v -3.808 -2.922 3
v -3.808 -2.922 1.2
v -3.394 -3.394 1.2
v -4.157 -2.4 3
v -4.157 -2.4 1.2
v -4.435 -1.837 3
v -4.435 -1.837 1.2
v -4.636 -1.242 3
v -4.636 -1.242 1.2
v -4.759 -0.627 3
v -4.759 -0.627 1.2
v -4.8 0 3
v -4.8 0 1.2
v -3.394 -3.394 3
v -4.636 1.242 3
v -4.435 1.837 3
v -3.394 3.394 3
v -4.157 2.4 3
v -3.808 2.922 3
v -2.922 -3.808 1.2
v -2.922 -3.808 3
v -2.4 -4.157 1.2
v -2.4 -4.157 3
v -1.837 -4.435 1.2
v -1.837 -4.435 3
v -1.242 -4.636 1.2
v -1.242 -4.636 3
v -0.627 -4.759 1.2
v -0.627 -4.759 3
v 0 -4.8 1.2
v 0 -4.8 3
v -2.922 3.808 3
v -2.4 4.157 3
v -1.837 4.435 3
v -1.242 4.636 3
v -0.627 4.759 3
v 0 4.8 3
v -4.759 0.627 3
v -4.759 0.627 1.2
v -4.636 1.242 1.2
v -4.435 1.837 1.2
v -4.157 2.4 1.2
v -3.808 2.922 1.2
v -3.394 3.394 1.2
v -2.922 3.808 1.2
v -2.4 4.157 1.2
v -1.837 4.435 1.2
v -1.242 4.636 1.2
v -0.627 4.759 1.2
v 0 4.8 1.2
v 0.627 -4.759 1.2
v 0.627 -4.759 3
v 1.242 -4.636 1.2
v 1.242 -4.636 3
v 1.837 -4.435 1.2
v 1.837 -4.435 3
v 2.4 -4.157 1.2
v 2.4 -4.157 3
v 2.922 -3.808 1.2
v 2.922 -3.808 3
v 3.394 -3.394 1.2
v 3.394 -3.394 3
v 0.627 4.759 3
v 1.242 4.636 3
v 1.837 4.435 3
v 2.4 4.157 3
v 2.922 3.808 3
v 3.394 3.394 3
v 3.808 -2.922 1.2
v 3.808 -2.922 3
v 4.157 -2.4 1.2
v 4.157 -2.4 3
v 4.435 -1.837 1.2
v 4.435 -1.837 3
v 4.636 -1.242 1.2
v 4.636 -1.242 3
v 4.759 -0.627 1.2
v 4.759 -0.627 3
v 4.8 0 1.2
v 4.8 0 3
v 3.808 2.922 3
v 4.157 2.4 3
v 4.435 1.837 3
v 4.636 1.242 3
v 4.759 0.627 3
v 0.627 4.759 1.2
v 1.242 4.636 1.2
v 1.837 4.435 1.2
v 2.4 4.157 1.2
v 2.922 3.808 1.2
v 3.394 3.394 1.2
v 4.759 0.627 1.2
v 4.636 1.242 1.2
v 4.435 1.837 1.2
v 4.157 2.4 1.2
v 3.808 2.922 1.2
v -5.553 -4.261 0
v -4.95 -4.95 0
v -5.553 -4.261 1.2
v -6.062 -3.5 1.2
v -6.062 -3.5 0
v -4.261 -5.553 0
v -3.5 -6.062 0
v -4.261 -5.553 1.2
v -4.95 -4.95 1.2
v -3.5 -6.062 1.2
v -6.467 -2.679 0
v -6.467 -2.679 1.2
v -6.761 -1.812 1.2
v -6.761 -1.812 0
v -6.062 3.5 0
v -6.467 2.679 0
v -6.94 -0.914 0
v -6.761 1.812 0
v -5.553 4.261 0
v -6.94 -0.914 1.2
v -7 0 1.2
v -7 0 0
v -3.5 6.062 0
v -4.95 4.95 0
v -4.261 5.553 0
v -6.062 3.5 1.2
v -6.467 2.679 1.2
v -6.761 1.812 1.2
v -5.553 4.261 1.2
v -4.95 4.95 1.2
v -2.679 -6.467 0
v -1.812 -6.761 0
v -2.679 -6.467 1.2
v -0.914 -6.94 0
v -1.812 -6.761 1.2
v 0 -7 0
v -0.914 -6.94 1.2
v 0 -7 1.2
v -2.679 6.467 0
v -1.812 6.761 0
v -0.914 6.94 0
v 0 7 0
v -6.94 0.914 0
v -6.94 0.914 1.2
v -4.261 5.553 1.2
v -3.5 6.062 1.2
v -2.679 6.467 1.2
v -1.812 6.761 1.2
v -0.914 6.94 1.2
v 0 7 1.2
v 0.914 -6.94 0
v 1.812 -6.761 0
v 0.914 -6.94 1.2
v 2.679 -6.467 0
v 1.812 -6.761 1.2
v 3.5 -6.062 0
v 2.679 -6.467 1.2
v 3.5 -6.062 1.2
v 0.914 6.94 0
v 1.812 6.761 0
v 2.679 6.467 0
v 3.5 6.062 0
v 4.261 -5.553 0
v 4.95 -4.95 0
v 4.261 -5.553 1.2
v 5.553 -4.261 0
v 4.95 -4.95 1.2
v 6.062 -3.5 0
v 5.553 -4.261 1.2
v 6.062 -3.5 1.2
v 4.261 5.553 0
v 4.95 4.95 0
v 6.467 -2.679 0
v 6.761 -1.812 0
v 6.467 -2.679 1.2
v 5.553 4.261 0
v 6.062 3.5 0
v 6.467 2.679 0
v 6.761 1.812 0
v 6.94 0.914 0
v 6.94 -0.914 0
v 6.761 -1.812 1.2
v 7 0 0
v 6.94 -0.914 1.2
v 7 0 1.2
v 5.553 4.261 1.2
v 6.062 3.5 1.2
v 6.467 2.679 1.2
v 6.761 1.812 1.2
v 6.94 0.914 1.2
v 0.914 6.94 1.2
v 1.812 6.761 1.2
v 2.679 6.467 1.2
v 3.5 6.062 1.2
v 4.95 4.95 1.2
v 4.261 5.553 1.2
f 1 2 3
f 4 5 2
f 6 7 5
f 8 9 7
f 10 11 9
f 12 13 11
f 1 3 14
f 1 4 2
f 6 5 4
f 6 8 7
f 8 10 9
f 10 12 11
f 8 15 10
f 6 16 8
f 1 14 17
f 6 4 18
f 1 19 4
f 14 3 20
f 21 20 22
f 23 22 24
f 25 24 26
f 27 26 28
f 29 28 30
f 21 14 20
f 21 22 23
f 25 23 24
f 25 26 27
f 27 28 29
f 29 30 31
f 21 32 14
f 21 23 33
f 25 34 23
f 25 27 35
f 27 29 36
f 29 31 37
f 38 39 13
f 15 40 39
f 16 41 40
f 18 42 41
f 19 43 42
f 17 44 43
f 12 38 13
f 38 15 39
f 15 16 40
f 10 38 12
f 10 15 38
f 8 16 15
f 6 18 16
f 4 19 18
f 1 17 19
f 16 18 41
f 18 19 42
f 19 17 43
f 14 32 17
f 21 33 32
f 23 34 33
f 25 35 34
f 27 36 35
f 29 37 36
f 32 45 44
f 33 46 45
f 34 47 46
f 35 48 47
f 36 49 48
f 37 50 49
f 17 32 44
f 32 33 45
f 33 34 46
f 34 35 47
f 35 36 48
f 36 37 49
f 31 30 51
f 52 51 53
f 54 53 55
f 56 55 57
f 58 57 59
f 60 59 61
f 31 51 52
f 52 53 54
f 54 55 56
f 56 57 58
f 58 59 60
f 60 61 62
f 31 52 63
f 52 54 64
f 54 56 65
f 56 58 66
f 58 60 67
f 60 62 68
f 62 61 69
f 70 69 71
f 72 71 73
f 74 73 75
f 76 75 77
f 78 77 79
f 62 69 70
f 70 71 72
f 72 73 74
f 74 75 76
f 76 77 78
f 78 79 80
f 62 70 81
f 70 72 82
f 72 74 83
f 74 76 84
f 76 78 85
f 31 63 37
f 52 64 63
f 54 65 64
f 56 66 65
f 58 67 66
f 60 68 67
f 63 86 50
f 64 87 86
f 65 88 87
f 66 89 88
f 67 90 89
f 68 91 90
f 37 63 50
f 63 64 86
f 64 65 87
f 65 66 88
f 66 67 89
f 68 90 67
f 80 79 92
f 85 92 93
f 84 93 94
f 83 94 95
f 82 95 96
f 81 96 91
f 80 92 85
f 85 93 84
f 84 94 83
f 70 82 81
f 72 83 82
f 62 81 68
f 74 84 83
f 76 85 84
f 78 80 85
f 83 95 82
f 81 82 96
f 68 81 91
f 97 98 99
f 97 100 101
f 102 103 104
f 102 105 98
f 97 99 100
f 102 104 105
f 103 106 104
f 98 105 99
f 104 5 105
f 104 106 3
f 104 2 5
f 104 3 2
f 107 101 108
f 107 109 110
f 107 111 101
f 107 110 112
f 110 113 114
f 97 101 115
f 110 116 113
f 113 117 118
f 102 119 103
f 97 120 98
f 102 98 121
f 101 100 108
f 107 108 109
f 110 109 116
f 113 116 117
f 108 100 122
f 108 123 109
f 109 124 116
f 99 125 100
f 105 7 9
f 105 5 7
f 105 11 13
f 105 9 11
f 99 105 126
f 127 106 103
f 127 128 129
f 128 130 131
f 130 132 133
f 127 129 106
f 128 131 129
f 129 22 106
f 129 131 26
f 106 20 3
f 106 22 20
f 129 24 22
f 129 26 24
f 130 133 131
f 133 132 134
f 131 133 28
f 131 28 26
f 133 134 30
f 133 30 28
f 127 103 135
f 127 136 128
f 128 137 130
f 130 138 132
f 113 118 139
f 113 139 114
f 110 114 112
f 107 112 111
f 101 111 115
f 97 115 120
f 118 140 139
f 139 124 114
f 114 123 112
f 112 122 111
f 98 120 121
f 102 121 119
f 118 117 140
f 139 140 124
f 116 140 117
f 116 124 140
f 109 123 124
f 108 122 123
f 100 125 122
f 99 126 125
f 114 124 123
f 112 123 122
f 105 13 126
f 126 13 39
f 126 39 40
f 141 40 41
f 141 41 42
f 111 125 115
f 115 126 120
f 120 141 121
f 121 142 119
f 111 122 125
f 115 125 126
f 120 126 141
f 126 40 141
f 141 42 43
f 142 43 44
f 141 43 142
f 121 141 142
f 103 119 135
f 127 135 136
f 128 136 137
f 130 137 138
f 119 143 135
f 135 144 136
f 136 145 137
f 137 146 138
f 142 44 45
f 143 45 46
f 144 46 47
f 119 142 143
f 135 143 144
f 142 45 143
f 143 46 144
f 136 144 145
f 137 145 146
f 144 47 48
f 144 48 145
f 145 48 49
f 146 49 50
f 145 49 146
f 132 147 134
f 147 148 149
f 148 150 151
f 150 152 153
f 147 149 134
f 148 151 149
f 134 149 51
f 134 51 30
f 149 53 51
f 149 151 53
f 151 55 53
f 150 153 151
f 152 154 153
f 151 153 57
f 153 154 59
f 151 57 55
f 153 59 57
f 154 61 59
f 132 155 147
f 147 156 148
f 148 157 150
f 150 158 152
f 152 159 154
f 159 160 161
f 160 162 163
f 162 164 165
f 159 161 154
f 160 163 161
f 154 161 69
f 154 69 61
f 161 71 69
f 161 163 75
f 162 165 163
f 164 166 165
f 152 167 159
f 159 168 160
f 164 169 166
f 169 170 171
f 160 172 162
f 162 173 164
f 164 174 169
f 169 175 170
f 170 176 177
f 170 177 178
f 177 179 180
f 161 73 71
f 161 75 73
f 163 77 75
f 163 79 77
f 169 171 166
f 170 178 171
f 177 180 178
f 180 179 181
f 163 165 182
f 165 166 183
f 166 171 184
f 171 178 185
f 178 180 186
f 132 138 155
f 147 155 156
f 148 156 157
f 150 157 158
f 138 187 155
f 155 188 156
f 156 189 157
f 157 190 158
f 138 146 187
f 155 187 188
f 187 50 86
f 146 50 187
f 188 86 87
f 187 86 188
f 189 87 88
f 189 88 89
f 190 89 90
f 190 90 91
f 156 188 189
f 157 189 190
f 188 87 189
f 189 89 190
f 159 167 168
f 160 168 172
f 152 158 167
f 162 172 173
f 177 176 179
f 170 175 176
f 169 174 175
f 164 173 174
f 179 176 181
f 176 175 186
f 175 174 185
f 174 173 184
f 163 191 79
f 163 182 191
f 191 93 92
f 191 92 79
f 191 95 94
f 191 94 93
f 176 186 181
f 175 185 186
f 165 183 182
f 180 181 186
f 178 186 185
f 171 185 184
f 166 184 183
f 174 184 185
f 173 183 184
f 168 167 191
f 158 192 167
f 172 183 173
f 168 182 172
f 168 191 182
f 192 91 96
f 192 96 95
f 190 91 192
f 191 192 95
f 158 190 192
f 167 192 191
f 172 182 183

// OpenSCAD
// Generated FH1 print part; mm. See parameters.json and physical-fit limits.
union() {
cylinder(d=9.6,h=3,$fn=48);
cylinder(d=14,h=1.2,$fn=48);
}
